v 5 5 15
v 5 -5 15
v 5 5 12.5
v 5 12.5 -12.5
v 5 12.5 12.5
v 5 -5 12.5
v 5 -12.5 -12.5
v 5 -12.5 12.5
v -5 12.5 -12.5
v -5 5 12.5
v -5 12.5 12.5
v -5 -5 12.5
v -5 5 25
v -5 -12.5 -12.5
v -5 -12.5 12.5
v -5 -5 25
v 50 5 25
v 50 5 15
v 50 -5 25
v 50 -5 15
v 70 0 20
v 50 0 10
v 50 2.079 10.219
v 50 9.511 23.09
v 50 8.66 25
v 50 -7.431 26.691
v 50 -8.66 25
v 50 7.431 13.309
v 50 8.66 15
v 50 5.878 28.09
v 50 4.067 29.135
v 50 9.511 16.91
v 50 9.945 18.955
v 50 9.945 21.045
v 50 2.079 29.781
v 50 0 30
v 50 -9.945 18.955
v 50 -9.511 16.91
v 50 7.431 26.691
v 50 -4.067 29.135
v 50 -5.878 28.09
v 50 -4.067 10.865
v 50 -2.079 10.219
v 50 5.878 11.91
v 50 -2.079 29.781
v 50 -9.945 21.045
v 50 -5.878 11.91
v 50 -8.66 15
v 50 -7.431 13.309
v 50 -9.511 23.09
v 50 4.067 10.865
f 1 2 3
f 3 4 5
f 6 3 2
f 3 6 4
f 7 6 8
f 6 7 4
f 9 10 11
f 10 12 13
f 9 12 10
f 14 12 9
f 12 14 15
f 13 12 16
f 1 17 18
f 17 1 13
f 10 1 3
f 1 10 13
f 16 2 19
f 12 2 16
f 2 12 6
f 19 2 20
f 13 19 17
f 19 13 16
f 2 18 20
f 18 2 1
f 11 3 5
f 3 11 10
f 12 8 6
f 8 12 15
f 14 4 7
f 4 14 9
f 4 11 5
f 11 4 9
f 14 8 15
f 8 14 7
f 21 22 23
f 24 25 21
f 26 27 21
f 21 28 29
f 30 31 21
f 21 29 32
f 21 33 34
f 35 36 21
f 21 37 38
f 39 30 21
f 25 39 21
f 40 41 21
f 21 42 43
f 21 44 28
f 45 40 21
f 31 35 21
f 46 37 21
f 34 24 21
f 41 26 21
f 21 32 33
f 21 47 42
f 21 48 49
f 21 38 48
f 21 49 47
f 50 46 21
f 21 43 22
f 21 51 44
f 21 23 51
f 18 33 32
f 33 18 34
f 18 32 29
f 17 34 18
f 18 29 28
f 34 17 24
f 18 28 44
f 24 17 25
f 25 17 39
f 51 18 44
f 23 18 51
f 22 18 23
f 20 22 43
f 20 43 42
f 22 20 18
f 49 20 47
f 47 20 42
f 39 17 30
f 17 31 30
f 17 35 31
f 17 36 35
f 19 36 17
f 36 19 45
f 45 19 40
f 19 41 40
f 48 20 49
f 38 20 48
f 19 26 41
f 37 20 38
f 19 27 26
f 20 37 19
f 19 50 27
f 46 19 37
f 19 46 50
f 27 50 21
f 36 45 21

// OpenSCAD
union() {
    translate([-5,-5,0]){
        cube([10,10,20]);
    }
    translate([-5,-5,15]){
        cube([60,10,10]);
    }
    cube([10,25,25],center=true);
    translate([50,00,20]) {
        rotate([0,90,00]){
            cylinder(h=20,r1=10,r2=0);
        }
    }
}
    
